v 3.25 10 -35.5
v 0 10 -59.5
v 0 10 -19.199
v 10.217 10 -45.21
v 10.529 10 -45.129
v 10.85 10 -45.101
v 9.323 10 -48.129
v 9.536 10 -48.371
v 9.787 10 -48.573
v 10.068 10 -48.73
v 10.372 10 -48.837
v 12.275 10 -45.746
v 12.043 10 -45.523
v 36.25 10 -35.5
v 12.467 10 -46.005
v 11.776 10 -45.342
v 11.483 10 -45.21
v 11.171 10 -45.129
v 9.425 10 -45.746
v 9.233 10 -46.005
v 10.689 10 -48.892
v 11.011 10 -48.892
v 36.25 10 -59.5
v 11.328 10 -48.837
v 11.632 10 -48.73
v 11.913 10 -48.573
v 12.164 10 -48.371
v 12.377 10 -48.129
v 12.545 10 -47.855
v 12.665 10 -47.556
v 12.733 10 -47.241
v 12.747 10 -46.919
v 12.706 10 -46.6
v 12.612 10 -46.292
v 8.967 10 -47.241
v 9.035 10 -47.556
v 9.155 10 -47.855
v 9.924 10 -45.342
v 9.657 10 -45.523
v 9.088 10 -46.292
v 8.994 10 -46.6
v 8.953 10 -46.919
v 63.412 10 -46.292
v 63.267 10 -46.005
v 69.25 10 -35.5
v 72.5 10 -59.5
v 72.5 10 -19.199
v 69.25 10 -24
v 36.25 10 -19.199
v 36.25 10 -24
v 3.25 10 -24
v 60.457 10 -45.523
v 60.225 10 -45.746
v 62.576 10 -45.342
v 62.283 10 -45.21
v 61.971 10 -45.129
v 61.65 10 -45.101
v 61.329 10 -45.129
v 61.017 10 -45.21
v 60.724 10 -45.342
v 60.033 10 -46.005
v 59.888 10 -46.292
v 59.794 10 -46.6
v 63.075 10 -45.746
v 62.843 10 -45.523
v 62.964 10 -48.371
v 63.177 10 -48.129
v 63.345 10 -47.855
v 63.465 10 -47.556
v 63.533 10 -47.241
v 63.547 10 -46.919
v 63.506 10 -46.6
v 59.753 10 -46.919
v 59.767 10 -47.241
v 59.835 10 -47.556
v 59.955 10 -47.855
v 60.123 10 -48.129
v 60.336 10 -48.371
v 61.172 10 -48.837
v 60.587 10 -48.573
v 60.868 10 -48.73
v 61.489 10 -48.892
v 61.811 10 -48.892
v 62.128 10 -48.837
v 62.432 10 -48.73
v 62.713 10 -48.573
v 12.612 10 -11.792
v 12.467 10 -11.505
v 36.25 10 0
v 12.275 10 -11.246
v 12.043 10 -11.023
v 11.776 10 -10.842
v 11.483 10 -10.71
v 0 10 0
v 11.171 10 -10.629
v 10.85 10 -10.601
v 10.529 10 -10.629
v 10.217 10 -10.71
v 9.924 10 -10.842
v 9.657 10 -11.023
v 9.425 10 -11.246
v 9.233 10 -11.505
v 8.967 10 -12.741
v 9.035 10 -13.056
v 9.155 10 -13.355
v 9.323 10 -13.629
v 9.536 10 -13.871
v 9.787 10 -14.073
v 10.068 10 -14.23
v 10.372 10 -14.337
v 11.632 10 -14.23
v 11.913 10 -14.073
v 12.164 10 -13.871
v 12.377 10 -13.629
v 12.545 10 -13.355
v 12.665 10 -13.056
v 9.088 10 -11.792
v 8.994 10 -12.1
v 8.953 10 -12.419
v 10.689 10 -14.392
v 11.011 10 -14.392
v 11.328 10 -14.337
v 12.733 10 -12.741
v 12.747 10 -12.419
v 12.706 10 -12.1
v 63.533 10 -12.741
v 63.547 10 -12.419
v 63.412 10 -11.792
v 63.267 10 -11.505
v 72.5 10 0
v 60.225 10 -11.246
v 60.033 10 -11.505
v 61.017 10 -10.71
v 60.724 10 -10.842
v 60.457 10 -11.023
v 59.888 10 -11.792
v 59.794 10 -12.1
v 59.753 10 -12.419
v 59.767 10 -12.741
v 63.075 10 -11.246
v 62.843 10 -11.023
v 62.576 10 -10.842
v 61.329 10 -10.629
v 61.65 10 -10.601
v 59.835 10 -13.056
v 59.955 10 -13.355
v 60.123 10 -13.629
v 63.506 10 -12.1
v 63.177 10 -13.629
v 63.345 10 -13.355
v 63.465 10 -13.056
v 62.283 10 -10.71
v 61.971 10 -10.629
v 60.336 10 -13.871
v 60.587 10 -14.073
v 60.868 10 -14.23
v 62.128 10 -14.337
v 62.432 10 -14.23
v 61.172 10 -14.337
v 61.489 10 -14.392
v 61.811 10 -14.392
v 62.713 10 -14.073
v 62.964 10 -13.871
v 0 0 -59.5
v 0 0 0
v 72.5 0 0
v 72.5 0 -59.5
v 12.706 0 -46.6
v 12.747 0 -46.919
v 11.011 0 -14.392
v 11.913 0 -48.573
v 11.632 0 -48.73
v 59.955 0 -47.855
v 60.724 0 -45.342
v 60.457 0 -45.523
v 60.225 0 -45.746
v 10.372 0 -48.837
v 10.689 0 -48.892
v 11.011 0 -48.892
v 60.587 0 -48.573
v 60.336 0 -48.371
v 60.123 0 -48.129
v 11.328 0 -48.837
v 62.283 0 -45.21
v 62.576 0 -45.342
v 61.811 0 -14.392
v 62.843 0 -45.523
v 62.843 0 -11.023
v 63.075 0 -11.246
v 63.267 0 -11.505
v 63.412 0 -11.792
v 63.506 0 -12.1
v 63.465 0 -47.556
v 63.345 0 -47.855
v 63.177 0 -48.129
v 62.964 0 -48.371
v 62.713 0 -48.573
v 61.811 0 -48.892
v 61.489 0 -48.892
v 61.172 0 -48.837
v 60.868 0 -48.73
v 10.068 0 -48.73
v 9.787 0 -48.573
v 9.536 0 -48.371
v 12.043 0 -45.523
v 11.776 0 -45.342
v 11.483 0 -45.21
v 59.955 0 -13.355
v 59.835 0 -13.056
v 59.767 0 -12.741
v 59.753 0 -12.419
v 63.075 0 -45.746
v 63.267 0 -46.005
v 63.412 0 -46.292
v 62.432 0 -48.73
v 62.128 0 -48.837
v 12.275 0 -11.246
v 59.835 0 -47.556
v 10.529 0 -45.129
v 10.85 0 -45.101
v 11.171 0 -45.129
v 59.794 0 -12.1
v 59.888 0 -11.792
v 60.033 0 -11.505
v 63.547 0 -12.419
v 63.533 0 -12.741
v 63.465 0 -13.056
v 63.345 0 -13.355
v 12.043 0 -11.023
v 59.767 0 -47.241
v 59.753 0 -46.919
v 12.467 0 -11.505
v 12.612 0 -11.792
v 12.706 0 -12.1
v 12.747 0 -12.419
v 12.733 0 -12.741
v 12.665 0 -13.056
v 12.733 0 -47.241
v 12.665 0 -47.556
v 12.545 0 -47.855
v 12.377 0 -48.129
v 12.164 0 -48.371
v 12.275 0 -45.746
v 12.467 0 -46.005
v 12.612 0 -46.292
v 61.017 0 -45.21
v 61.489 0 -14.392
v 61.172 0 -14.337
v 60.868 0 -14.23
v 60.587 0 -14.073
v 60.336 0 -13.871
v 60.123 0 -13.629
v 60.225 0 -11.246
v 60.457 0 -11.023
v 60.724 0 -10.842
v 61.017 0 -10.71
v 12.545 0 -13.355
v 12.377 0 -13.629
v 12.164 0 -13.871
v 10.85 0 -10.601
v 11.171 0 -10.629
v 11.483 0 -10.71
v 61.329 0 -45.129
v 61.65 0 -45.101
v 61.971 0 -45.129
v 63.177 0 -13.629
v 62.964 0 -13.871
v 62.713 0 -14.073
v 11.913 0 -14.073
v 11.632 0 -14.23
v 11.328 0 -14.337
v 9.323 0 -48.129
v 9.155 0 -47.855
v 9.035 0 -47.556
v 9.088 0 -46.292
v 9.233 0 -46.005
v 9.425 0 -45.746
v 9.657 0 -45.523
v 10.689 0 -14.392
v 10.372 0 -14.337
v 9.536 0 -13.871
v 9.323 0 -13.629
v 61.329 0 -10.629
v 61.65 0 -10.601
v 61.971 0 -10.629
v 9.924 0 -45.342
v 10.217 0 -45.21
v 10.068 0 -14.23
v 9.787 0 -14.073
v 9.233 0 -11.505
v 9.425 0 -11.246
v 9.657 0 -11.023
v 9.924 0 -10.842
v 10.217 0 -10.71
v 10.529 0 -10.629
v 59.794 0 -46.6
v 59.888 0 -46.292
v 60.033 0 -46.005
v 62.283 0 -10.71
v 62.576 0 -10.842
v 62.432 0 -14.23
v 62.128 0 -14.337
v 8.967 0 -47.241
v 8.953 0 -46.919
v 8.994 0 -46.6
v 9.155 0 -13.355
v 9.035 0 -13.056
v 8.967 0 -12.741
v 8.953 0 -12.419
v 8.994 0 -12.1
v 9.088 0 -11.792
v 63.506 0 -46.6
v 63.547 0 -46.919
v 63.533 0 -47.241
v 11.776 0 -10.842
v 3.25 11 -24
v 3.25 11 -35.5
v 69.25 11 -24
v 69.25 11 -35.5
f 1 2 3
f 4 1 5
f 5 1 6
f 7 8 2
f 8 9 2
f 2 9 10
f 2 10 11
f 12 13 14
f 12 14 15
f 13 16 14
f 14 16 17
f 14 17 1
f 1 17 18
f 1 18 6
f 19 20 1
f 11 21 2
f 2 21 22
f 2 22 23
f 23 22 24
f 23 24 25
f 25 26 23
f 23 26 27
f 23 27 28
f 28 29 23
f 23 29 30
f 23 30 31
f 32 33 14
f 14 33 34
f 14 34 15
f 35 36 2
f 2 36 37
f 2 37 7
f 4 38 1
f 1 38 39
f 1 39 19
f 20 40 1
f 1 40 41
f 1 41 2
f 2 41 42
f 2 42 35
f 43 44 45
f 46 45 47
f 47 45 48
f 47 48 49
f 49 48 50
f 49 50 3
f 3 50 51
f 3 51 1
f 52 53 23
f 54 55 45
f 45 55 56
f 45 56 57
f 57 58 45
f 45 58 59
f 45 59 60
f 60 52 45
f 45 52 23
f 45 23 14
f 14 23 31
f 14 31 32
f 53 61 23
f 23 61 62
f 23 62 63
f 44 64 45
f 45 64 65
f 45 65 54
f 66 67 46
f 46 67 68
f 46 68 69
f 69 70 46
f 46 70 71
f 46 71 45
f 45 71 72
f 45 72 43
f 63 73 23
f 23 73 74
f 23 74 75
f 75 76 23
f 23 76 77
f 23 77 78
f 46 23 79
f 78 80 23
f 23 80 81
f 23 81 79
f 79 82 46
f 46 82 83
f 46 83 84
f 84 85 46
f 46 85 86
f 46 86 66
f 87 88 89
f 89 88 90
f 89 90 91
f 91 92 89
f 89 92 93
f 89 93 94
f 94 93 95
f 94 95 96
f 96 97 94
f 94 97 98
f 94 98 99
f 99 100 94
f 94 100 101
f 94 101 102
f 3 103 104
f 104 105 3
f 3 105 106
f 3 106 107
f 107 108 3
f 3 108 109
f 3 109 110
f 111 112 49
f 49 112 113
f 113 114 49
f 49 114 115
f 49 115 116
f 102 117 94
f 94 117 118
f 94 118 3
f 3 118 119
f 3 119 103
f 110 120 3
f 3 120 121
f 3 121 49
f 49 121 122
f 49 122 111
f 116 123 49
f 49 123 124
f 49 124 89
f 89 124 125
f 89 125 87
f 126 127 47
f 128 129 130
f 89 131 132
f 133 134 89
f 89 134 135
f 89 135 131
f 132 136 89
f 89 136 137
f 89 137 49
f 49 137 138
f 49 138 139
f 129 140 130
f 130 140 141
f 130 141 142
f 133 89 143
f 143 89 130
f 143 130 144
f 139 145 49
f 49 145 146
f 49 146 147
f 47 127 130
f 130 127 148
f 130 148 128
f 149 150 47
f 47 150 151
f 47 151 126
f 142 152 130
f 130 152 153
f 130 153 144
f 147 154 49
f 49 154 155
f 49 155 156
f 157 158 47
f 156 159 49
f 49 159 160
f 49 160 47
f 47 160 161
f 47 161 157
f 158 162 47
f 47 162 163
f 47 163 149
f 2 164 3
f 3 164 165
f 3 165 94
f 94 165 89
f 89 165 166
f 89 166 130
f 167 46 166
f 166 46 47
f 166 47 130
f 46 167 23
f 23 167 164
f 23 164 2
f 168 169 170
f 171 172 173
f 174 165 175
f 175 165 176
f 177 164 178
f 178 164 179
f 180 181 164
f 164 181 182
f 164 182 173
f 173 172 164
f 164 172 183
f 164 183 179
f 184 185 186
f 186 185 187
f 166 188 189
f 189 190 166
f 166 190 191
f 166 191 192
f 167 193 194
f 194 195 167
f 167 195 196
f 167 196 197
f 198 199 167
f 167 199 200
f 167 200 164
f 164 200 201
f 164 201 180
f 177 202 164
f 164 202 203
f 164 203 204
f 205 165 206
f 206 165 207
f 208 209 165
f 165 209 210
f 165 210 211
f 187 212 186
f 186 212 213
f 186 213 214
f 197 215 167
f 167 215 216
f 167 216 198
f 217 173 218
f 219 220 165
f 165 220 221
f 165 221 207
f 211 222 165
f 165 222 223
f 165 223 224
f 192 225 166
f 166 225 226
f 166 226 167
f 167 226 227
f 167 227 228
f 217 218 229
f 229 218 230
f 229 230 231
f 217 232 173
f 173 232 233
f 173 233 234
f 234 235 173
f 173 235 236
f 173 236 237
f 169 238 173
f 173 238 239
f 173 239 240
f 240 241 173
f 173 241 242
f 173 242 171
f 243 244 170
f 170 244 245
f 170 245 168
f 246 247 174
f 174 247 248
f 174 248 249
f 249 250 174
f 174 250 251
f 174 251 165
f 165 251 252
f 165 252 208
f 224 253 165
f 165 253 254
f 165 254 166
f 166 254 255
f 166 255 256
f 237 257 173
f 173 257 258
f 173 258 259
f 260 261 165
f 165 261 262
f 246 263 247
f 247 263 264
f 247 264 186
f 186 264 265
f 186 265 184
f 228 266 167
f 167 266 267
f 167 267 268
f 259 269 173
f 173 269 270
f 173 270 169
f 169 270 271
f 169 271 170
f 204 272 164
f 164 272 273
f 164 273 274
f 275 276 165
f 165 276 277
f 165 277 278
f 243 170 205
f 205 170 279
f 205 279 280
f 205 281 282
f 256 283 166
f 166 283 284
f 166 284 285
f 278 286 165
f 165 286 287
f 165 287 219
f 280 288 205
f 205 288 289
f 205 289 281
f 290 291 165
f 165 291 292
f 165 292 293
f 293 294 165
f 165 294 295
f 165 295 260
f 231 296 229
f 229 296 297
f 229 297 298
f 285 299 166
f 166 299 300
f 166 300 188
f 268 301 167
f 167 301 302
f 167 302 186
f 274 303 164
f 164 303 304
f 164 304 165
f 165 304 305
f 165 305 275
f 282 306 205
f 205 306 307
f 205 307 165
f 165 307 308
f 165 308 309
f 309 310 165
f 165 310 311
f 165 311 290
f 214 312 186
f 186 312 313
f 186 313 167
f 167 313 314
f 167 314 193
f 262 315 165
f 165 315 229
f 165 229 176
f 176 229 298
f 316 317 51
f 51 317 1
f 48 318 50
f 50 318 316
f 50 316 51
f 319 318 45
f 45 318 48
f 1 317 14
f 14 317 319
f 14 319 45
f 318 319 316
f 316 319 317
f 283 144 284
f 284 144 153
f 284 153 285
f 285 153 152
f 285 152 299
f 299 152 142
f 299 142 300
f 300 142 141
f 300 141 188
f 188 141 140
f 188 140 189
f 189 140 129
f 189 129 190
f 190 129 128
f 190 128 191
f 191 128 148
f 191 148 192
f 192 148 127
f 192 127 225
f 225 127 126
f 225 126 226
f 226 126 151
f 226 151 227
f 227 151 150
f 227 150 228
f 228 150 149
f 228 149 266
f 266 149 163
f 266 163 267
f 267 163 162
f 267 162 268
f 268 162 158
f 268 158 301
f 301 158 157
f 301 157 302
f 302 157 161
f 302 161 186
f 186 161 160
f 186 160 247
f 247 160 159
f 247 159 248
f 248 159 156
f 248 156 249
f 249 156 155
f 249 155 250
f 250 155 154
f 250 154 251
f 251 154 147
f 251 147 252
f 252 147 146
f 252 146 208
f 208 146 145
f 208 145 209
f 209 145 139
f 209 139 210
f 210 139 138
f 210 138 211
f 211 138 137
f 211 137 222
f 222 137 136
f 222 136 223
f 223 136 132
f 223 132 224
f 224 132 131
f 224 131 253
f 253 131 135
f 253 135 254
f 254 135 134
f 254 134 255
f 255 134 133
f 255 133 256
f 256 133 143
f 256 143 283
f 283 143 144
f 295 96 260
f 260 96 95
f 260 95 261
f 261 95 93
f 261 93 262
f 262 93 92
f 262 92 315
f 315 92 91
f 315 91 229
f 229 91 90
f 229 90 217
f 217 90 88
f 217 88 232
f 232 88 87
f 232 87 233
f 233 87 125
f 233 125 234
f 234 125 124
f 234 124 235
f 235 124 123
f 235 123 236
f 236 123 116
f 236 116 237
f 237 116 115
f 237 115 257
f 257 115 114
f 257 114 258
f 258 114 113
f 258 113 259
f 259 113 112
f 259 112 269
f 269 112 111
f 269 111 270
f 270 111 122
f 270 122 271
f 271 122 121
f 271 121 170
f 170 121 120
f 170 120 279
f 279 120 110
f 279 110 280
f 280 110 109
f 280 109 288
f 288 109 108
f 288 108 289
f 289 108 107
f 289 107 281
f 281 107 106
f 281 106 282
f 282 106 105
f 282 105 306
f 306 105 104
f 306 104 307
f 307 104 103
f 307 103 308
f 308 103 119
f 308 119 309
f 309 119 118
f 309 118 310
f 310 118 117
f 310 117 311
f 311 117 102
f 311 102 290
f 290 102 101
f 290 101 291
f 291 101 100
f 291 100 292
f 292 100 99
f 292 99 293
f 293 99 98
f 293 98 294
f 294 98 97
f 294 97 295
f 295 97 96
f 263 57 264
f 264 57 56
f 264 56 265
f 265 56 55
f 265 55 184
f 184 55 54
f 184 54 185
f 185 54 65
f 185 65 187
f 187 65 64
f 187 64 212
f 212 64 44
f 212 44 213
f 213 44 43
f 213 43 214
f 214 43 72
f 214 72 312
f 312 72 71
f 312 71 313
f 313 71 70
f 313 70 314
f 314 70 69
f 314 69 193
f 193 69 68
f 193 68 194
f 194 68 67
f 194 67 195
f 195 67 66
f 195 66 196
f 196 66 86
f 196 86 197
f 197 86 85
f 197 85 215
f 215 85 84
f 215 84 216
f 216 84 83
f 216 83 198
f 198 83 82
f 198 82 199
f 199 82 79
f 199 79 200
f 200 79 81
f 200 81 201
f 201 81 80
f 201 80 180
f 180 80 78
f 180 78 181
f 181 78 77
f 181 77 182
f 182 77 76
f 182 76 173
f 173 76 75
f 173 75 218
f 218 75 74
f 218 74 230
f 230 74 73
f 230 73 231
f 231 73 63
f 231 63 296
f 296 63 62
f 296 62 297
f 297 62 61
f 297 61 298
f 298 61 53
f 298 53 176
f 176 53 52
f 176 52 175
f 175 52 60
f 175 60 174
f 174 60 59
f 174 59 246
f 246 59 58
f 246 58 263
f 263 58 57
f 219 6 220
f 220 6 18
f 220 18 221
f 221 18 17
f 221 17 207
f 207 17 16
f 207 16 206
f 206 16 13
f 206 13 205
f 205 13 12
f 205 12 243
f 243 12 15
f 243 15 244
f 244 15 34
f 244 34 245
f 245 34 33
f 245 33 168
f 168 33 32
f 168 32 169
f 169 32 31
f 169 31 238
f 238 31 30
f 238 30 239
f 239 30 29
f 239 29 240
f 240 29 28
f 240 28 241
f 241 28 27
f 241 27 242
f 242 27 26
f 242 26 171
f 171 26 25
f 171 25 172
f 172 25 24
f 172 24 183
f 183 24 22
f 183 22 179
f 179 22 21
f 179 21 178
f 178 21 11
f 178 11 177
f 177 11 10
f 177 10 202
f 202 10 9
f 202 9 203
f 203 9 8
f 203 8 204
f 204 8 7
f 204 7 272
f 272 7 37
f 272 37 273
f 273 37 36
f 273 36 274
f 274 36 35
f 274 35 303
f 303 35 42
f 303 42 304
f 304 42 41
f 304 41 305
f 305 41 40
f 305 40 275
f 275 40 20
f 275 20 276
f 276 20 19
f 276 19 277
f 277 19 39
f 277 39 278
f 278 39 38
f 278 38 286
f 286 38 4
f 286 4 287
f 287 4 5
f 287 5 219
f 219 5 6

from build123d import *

# Parameters (mm, degrees)
SKETCH1_W                  = 72.5
SKETCH1_H                  = 59.5
BOSS_EXTRUDE1_DEPTH        = 10
SKETCH4_W                  = 66
SKETCH4_H                  = 11.5
BOSS_EXTRUDE3_DEPTH        = 1
TAP_DRILL_FOR_10_24_TAP1_D = 3.7973


with BuildPart() as part:
    # Sketch1 → Boss-Extrude1 (new body)
    with BuildSketch(Plane(origin=(0, 0, 0), x_dir=(1, 0, 0), z_dir=(0, 1, 0))):
        with Locations((36.25, 29.75)):
            Rectangle(SKETCH1_W, SKETCH1_H)
    extrude(amount=BOSS_EXTRUDE1_DEPTH)

    # Sketch4 → Boss-Extrude3 (add)
    with BuildSketch(Plane(origin=(0, 10, 0), x_dir=(1, 0, 0), z_dir=(0, 1, 0))):
        with Locations((36.25, 29.75)):
            Rectangle(SKETCH4_W, SKETCH4_H)
    extrude(amount=BOSS_EXTRUDE3_DEPTH)

    # Tap Drill for #10-24 Tap1 (through all)
    with Locations(Plane(origin=(0, 10, 0), x_dir=(1, 0, 0), z_dir=(0, 1, 0))):
        with Locations((10.85, 47), (61.65, 47), (10.85, 12.5), (61.65, 12.5)):
            Hole(TAP_DRILL_FOR_10_24_TAP1_D / 2)


solid = part.part
